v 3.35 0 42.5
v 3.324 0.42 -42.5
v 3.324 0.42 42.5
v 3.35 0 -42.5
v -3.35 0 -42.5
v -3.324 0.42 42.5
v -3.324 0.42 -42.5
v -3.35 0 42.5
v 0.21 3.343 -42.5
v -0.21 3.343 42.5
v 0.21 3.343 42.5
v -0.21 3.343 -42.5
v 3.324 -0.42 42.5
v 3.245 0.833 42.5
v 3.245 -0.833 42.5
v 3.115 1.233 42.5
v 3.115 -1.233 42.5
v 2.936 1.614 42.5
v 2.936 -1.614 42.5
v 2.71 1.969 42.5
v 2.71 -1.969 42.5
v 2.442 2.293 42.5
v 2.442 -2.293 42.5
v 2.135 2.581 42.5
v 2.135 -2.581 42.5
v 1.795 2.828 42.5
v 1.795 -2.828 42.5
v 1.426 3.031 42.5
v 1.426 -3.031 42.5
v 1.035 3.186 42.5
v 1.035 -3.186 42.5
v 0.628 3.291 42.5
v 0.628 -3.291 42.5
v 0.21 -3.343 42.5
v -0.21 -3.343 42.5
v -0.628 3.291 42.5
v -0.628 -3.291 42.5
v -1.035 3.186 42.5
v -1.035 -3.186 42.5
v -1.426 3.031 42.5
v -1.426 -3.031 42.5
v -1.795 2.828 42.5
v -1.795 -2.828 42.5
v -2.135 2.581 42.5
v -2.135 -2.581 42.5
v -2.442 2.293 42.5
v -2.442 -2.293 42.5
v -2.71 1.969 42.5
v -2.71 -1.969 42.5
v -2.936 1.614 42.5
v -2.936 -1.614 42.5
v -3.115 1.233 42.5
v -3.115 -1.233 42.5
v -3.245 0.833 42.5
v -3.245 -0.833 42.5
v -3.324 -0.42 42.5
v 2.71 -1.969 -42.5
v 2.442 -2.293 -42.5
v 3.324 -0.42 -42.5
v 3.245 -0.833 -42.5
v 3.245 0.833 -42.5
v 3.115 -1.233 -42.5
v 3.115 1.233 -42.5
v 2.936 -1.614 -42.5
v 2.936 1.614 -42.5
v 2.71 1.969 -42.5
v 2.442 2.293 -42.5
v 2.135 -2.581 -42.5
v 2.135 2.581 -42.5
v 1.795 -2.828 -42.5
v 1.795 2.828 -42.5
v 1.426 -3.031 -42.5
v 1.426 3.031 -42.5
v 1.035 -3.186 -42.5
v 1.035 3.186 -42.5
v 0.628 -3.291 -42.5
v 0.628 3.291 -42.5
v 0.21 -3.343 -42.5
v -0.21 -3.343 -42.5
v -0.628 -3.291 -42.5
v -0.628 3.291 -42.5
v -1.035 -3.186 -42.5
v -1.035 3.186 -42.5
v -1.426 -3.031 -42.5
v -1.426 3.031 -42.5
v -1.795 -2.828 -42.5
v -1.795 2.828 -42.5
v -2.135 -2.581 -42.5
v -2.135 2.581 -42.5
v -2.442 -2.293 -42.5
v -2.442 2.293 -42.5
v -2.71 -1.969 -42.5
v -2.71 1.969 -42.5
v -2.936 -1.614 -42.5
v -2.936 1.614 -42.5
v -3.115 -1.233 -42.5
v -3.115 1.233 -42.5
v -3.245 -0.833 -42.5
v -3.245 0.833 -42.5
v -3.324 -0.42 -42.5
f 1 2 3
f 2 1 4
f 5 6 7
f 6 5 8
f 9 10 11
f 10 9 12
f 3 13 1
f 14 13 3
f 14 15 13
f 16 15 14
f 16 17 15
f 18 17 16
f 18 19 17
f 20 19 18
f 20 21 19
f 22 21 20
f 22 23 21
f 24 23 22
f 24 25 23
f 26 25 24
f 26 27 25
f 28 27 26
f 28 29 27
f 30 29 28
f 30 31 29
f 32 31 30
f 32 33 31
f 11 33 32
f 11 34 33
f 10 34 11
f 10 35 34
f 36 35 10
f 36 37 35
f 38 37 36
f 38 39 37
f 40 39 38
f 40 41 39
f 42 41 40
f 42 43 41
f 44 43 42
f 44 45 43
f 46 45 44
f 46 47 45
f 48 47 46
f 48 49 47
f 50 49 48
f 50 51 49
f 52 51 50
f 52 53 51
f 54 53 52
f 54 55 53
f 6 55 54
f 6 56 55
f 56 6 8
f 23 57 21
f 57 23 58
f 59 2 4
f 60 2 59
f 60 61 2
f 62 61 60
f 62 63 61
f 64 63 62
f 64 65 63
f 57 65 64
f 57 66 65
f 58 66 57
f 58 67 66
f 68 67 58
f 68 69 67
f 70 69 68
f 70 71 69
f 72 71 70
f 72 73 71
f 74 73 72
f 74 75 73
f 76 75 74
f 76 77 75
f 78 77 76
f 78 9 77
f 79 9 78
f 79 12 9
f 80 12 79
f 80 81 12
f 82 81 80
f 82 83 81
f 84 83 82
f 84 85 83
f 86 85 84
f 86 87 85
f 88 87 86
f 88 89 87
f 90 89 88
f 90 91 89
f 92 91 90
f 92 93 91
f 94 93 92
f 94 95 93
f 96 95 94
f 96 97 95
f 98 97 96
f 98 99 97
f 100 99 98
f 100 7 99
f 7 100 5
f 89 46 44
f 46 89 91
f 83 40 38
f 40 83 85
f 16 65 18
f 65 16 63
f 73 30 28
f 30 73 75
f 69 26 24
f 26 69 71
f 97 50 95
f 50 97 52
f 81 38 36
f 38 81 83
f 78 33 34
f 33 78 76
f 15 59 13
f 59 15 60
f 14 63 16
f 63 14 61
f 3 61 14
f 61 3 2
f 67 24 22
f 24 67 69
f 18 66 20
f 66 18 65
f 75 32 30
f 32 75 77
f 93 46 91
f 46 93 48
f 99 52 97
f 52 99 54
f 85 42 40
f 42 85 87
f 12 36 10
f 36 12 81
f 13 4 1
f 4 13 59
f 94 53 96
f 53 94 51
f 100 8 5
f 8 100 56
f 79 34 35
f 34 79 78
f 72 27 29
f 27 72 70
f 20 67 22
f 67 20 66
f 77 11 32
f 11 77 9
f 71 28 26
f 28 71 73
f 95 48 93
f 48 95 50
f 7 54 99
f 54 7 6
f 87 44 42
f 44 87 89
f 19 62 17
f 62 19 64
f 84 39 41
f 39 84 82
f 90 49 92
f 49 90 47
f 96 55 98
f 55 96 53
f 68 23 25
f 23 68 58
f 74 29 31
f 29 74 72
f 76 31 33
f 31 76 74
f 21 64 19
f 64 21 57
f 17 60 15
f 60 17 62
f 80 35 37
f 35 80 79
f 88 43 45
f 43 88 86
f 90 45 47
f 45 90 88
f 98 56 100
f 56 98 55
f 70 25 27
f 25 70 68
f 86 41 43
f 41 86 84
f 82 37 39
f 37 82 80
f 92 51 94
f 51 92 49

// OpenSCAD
$fn = 50;


difference() {
	union() {
		translate(v = [0, 0, -42.5000000000]) {
			cylinder(h = 85, r = 3.3500000000);
		}
	}
	union() {
		translate(v = [0, 0, -100.0000000000]) {
			cylinder(h = 200, r = 0);
		}
	}
}
